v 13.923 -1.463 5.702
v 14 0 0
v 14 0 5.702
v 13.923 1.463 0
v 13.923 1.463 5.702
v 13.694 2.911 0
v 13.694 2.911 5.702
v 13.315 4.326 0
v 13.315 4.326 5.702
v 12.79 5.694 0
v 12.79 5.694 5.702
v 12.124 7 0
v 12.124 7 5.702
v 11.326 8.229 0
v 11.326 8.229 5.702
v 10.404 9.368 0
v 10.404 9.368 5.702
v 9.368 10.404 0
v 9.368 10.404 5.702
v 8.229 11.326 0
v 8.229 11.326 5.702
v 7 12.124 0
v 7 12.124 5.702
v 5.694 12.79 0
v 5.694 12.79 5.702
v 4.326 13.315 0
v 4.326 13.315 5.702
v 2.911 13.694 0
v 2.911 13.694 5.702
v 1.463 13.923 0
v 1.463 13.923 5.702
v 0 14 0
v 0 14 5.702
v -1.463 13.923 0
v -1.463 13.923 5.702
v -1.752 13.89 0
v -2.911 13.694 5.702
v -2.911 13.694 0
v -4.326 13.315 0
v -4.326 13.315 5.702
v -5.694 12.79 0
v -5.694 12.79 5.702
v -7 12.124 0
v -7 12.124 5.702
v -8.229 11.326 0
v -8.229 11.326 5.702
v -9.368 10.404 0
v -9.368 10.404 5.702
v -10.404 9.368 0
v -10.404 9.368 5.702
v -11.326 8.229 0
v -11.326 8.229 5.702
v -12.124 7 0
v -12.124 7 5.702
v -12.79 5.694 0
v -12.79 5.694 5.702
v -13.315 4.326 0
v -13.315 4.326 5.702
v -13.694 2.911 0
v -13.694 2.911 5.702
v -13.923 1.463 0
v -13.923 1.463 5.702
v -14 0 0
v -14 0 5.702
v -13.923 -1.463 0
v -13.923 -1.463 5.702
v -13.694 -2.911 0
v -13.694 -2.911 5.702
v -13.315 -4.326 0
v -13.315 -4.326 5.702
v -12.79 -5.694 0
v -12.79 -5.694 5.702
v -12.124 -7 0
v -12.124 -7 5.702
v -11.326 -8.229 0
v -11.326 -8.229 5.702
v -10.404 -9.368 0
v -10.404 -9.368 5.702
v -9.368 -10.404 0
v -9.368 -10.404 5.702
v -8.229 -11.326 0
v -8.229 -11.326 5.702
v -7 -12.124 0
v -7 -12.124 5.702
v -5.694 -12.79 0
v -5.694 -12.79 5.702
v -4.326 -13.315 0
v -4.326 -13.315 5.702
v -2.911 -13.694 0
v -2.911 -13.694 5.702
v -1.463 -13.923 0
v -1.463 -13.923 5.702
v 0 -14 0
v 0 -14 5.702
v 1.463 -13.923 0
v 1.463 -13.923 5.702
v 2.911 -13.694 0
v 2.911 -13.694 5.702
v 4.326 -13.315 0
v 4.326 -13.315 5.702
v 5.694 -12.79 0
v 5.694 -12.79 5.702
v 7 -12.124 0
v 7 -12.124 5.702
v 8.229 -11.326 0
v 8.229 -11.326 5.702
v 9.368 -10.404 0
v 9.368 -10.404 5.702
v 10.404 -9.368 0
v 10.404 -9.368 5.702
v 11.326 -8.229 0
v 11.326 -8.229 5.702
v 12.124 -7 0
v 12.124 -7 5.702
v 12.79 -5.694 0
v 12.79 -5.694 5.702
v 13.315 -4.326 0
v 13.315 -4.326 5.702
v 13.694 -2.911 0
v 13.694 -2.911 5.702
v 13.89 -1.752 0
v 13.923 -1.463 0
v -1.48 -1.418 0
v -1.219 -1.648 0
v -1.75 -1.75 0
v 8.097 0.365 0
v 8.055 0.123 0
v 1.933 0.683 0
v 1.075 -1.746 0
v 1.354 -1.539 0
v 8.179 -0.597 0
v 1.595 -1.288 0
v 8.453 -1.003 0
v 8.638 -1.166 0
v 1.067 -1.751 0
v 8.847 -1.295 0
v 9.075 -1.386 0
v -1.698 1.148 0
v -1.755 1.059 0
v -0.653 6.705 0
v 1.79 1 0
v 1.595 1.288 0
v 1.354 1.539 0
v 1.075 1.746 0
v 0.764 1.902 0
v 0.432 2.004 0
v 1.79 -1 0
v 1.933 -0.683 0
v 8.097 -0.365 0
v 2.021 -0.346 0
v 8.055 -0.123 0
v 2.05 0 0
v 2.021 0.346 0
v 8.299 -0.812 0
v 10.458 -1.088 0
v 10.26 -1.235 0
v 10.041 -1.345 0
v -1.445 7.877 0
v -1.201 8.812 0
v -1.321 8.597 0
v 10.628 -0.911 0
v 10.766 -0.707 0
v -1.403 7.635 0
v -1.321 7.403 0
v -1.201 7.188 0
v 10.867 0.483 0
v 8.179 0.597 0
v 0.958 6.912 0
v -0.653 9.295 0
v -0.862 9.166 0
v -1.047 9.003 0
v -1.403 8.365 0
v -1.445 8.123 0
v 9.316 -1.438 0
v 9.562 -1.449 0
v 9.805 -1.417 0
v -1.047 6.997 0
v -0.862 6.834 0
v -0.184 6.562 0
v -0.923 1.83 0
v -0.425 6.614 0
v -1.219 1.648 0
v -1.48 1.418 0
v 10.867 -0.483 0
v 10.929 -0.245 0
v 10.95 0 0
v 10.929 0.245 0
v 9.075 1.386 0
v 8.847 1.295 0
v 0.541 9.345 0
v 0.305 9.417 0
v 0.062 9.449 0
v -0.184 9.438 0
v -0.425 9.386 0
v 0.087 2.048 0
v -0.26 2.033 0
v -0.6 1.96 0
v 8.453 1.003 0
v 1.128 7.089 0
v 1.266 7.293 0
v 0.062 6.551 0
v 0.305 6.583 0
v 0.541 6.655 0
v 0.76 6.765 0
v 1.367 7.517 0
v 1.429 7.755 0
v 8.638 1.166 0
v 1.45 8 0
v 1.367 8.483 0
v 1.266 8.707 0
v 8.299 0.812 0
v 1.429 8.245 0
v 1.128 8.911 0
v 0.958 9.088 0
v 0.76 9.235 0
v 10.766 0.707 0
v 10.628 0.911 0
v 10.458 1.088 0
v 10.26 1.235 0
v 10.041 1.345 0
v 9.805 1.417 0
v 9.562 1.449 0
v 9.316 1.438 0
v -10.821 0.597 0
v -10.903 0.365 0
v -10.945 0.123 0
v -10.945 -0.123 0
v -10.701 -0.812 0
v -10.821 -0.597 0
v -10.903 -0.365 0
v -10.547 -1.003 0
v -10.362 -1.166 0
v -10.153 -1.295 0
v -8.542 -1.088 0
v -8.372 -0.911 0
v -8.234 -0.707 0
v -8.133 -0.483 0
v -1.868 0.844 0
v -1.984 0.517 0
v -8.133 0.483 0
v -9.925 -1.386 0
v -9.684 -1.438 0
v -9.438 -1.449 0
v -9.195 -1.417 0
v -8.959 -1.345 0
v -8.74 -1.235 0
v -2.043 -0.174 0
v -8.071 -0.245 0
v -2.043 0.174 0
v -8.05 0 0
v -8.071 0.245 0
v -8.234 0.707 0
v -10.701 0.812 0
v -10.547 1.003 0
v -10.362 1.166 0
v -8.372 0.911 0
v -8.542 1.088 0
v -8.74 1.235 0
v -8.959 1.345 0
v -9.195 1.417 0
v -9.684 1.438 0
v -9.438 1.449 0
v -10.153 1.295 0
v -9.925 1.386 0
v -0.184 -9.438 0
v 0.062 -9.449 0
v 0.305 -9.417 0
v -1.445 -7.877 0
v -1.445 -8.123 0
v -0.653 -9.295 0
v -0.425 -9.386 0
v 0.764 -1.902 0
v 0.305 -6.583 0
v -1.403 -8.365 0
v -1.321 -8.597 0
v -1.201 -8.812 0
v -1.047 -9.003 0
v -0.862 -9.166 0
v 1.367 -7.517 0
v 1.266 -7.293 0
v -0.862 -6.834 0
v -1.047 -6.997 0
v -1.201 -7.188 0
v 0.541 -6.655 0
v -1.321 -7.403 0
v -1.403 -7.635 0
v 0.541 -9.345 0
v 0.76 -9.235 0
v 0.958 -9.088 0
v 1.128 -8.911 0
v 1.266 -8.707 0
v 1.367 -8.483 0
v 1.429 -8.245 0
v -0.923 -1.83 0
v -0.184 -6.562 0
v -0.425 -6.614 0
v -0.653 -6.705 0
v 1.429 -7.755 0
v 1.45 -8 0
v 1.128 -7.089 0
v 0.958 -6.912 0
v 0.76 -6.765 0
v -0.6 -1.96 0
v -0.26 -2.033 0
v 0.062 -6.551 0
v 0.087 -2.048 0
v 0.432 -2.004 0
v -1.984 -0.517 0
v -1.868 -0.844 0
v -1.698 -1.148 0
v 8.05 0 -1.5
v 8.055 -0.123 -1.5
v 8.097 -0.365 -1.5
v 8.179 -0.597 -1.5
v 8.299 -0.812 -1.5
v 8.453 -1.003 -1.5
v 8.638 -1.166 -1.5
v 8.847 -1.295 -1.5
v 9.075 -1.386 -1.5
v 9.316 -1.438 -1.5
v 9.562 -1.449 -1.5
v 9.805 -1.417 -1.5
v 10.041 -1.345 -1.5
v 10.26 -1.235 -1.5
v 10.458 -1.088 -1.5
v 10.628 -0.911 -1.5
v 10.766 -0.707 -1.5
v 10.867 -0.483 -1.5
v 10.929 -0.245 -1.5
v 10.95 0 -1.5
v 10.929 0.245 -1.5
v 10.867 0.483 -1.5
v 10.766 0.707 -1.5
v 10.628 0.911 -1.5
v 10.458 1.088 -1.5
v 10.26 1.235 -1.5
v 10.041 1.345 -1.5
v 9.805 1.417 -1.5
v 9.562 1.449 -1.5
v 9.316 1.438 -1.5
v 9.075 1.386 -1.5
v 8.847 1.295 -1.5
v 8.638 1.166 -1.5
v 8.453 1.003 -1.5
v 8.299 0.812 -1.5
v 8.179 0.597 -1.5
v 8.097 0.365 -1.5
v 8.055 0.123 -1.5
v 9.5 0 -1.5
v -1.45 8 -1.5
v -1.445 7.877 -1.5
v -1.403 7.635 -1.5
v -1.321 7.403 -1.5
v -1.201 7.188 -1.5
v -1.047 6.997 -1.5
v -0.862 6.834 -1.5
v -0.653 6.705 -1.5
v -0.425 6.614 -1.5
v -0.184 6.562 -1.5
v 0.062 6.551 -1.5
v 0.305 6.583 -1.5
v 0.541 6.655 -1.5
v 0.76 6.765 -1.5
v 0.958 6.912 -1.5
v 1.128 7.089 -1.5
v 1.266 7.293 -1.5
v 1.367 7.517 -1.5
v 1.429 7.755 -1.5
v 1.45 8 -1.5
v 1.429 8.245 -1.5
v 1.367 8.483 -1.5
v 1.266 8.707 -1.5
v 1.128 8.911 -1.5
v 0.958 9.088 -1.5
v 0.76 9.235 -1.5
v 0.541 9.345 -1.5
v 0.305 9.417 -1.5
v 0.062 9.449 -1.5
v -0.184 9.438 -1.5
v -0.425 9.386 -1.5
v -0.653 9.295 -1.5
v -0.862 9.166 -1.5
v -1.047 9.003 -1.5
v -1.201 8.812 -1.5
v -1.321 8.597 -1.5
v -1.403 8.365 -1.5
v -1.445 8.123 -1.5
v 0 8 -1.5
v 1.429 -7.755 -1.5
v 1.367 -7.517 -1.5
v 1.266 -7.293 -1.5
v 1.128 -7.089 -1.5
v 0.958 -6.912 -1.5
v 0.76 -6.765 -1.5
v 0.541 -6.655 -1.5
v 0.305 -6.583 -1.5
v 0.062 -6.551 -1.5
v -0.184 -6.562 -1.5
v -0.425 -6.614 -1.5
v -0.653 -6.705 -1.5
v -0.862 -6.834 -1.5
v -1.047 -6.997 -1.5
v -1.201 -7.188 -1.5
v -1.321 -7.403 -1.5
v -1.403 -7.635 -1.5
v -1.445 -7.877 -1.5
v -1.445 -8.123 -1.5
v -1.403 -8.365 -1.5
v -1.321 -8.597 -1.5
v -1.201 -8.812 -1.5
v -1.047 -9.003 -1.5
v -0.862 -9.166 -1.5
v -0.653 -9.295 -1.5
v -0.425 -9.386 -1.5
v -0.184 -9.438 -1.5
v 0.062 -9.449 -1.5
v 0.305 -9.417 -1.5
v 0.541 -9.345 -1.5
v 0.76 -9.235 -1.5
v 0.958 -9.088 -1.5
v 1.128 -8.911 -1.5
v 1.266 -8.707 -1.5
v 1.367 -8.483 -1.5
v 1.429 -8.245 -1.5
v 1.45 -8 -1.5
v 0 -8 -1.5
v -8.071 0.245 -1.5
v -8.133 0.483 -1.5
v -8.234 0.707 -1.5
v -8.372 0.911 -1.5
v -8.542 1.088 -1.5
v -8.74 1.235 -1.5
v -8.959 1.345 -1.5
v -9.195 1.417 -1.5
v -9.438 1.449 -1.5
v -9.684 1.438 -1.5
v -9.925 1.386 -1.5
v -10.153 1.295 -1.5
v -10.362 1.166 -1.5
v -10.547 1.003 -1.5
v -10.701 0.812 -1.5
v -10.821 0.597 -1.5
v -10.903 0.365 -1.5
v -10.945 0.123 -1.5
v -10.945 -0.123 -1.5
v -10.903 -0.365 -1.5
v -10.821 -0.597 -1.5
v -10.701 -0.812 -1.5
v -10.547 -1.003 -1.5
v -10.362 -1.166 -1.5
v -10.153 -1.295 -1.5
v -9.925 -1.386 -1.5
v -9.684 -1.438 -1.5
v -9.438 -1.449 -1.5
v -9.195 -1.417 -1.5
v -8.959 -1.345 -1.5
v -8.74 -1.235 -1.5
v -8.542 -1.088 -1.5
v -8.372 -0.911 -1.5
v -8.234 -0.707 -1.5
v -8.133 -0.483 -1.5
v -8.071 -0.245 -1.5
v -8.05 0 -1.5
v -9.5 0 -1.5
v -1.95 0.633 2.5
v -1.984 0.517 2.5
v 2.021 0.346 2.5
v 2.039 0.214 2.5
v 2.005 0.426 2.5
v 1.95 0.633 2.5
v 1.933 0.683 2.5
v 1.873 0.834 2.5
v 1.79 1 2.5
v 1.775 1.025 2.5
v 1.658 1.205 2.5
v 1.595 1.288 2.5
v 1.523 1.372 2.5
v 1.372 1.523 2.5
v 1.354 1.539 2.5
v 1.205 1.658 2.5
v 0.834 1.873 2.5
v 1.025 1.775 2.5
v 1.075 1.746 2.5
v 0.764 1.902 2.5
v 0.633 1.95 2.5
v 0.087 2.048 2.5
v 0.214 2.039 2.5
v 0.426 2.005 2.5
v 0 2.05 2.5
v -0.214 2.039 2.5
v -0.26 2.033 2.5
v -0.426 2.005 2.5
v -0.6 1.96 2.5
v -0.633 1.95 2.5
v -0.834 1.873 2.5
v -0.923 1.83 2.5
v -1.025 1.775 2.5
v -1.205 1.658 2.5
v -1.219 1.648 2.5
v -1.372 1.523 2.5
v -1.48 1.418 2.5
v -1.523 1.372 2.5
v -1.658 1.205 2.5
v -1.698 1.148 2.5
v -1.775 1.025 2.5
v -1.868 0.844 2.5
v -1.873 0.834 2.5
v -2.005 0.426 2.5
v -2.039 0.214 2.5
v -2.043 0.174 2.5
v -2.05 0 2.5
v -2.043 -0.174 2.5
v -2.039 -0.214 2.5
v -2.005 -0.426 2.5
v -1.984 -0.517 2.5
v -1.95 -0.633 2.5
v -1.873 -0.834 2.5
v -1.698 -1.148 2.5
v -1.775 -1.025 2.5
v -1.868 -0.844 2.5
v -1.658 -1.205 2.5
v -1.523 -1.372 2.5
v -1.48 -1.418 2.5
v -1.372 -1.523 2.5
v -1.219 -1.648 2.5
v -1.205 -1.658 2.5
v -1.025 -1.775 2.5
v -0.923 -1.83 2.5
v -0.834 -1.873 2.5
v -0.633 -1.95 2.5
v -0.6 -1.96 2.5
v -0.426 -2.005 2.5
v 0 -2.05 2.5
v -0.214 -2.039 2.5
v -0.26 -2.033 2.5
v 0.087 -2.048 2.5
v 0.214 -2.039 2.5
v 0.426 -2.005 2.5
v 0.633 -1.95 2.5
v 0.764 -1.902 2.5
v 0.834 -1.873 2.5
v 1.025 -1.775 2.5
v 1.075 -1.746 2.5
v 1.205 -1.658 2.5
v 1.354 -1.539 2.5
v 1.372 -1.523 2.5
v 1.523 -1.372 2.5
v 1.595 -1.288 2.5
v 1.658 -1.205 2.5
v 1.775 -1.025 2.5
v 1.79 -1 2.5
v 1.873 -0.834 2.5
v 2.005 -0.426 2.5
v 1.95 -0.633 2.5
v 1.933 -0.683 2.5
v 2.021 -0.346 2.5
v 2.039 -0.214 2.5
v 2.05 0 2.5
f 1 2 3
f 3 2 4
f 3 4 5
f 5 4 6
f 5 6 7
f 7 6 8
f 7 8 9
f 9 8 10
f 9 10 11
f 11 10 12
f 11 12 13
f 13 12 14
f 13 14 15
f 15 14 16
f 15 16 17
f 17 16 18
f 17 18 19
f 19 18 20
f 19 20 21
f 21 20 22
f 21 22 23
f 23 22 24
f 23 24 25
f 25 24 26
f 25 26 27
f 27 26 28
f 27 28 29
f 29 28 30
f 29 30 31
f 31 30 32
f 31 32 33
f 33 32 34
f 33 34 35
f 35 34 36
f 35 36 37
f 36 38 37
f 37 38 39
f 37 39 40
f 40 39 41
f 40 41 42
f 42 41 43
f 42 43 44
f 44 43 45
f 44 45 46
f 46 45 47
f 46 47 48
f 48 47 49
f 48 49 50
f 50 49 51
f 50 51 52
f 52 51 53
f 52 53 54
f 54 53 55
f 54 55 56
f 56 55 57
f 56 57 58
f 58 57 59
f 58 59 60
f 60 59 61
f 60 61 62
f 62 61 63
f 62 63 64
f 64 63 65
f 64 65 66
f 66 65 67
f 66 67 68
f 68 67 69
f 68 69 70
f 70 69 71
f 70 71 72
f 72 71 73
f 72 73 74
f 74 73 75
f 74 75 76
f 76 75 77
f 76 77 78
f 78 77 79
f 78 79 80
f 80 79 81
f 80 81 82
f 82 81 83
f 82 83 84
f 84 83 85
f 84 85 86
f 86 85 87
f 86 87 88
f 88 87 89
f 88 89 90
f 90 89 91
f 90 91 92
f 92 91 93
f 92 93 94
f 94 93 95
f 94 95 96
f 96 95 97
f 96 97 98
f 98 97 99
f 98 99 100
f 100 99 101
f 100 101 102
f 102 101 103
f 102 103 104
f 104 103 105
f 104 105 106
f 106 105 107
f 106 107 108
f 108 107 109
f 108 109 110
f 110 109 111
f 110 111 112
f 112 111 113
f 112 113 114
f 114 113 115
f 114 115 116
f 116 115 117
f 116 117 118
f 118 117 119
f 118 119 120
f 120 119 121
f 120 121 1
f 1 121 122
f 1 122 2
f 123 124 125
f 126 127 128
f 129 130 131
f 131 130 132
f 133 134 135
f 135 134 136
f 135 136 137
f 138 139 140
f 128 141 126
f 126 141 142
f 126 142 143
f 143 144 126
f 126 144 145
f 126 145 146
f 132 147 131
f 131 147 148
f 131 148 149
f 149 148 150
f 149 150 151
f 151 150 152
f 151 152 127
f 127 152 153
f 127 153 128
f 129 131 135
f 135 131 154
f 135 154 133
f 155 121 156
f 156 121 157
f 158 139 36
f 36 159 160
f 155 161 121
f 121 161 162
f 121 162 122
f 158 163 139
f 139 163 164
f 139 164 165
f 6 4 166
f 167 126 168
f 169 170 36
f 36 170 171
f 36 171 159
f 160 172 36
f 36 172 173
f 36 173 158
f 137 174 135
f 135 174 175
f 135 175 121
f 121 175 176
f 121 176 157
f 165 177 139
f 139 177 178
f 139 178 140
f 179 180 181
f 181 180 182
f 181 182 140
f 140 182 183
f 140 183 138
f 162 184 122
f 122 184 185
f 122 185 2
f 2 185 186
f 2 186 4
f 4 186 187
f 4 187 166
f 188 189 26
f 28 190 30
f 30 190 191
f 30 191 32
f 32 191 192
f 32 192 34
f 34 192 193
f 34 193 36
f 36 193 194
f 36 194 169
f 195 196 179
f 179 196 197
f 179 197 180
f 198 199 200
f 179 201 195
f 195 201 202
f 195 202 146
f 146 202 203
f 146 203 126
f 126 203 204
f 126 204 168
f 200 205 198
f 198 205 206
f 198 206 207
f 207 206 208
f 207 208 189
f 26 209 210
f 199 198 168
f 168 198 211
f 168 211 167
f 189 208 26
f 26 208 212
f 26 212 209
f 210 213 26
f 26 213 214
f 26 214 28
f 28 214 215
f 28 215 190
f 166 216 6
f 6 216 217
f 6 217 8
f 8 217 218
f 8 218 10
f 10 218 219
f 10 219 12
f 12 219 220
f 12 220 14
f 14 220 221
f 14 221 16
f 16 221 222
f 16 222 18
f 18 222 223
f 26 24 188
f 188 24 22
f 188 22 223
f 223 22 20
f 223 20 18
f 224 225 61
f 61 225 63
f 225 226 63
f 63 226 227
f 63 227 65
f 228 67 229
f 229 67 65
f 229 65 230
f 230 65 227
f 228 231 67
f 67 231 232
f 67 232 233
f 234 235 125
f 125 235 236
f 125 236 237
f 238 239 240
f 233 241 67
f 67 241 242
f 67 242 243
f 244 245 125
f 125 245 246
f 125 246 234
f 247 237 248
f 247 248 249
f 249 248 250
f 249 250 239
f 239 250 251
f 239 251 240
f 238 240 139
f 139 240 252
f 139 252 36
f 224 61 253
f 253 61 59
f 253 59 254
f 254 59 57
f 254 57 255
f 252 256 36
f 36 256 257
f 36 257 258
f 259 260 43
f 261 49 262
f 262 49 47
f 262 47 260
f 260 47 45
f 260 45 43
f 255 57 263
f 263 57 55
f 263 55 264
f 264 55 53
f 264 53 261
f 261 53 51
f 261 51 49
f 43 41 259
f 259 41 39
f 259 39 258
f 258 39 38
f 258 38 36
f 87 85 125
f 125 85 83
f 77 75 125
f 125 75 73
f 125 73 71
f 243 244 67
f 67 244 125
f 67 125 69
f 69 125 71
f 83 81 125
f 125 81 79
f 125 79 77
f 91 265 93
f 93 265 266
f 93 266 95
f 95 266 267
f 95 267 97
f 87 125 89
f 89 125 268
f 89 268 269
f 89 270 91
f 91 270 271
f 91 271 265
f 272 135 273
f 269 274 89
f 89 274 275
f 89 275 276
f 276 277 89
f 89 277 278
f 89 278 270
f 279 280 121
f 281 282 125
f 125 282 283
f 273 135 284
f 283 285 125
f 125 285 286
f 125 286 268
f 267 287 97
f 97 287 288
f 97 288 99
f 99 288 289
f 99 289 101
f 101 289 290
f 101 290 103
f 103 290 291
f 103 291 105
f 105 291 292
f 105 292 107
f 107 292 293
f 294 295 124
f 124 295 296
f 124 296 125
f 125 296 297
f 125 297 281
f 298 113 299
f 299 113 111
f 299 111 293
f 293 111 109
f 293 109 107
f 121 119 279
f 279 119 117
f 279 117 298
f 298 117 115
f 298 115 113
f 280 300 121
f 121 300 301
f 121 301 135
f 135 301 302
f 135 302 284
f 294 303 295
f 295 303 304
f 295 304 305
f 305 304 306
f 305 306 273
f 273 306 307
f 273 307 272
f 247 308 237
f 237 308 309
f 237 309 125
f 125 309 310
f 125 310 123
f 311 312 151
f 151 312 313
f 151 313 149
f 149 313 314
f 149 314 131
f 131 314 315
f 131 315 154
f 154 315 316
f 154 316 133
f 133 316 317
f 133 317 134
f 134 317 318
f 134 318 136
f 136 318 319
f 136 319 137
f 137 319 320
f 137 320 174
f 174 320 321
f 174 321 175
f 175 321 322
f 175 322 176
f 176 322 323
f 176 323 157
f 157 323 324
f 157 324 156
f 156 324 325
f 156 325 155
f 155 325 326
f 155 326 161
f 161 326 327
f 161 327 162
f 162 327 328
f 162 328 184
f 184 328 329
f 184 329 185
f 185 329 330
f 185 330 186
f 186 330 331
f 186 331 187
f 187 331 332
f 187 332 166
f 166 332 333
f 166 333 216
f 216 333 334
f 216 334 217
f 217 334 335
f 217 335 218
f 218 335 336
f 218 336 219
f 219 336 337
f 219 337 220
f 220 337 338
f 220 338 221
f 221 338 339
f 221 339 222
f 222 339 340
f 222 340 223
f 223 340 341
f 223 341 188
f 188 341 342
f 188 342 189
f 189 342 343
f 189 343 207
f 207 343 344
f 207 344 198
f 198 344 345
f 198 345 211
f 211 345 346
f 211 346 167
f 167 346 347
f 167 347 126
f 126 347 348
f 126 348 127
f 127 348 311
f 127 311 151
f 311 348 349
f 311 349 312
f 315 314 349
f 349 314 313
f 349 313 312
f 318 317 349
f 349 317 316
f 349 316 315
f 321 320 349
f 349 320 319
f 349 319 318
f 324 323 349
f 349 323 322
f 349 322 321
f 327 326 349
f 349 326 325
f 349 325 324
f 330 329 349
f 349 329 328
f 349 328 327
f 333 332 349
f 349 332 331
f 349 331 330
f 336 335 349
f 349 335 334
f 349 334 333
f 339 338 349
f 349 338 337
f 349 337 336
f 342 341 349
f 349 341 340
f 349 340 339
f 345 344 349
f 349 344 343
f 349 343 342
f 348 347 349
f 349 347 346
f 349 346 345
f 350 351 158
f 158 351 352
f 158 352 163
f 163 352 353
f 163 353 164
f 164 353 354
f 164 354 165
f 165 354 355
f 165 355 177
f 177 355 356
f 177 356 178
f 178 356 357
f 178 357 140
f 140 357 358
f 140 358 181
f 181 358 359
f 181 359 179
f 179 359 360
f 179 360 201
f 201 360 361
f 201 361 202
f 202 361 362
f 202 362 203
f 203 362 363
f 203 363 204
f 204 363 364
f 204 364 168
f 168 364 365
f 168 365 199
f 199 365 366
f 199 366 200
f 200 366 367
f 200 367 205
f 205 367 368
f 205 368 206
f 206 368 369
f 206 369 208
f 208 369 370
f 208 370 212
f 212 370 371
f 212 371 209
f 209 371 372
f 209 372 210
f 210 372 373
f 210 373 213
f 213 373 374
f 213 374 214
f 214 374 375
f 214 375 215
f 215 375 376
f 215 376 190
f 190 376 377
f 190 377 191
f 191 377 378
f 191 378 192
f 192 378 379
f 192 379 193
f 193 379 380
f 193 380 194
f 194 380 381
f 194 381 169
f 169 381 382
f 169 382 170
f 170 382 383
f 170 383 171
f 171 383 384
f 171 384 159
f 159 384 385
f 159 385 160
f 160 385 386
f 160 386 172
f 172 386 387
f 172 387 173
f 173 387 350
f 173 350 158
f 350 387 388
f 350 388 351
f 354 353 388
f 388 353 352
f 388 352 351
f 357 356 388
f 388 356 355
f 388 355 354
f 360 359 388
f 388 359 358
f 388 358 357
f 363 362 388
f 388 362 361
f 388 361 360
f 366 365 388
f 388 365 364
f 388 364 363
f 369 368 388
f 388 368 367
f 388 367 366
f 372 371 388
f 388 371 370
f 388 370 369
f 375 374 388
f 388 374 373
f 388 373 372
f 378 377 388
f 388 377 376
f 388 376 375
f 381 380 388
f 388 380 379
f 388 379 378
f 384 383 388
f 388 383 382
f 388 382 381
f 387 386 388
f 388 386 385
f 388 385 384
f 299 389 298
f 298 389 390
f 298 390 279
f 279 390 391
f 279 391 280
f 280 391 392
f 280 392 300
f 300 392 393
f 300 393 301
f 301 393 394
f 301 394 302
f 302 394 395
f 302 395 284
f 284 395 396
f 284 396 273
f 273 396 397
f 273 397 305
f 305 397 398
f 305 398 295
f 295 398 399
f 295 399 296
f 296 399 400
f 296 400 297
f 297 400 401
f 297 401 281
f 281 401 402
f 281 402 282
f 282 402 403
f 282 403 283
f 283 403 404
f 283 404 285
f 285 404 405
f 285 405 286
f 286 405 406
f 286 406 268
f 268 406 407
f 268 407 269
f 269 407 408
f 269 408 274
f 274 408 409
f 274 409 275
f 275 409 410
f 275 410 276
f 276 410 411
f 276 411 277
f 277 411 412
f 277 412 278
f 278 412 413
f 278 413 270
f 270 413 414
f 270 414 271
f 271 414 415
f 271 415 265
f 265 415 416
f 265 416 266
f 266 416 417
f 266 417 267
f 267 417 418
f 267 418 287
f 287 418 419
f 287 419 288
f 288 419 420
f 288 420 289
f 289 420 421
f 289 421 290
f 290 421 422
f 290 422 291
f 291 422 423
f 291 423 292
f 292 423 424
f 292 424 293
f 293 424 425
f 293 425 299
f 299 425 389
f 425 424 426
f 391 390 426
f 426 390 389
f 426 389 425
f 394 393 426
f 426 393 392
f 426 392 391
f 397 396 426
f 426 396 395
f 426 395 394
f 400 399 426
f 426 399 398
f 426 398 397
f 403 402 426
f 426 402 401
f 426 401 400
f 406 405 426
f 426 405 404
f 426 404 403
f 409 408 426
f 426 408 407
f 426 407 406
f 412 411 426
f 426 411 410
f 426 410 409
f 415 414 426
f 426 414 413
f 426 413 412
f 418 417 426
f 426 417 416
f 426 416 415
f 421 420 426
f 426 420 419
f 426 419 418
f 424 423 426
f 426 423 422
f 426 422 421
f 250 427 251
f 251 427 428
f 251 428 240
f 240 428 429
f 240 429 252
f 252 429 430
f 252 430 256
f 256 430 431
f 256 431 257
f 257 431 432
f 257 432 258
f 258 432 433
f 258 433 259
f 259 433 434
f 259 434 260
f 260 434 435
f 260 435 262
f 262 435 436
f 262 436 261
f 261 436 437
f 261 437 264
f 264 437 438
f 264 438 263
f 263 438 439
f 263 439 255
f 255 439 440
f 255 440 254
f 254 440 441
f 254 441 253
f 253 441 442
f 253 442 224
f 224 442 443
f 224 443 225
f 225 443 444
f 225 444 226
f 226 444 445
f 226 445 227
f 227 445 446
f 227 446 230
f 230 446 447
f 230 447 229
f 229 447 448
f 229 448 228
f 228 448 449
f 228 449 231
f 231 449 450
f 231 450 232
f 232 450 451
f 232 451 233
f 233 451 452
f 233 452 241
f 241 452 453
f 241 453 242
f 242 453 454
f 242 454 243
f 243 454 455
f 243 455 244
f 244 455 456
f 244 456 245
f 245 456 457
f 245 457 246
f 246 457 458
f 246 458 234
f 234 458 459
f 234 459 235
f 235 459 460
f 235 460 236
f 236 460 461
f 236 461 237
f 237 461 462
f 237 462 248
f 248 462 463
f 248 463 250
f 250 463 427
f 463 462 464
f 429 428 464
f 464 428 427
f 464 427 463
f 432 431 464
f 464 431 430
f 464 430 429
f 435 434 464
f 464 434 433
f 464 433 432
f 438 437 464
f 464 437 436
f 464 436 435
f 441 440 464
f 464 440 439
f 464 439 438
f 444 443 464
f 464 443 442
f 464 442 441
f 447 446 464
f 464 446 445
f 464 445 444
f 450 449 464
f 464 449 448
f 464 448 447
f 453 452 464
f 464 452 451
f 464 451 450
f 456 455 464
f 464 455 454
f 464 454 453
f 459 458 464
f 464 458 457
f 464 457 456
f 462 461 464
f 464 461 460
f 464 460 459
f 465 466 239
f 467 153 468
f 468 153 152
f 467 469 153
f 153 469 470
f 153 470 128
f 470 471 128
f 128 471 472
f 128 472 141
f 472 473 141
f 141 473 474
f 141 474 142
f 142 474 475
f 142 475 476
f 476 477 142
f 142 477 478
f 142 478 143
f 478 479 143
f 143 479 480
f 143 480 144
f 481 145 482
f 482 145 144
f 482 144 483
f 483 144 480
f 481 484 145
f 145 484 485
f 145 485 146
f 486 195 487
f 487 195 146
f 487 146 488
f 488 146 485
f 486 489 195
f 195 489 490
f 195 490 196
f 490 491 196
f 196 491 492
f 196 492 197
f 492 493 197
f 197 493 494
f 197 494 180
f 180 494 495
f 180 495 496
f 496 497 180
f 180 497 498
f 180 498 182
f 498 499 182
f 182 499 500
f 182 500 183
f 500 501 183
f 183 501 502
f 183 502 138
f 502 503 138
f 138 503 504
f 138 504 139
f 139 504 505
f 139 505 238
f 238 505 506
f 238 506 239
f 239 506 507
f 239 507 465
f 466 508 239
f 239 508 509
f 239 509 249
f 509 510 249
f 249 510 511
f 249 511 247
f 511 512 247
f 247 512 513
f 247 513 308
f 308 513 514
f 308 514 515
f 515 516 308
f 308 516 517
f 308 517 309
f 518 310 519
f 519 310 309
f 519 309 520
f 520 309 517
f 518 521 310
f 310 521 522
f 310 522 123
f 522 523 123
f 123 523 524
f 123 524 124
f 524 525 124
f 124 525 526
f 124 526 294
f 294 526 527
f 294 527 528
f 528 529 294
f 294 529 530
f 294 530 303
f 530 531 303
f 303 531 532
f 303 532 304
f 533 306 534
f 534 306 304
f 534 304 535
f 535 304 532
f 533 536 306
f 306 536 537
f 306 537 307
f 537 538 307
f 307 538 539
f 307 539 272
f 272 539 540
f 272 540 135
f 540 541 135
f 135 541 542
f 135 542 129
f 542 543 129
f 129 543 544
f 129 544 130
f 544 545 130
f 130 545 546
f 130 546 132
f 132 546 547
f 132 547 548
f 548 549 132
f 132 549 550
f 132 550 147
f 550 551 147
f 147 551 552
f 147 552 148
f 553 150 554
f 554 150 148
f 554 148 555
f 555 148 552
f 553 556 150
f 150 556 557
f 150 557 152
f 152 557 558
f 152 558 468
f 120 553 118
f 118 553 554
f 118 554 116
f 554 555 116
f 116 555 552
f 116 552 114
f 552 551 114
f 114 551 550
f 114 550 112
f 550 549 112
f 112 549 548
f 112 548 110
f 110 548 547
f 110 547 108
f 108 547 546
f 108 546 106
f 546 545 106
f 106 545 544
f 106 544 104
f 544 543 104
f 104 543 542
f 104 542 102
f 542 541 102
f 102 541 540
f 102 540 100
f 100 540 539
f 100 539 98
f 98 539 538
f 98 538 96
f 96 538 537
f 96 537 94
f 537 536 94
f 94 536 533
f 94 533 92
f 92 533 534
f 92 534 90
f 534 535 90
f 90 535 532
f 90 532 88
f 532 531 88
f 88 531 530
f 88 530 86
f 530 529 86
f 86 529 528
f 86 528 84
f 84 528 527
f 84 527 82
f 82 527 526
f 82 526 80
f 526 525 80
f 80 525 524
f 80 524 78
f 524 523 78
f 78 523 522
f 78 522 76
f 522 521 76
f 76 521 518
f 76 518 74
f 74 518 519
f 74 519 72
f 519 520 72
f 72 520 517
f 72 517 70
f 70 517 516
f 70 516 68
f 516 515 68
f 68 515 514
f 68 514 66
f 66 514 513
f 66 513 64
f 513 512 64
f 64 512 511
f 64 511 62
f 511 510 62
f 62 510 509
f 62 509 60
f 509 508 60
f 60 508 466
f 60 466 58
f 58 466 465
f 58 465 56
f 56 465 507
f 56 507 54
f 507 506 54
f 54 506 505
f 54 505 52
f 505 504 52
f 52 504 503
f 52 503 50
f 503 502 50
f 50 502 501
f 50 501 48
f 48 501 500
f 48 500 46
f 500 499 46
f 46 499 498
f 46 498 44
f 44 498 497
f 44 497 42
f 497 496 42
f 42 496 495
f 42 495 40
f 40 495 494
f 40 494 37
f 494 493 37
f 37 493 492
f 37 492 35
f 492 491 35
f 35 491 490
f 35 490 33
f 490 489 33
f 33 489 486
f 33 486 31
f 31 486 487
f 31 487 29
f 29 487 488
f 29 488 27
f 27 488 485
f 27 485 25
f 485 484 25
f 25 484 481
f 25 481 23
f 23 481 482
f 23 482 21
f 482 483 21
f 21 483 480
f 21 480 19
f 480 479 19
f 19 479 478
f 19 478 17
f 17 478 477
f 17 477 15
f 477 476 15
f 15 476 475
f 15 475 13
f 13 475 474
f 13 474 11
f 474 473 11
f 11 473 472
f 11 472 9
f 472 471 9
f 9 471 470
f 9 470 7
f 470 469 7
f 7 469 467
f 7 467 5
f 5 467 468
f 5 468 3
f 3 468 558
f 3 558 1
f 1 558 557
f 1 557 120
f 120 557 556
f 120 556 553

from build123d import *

# Parameters (mm, degrees)
SKETCH_1_R          = 14
EXTRUDE_1_DEPTH     = 2.5
SKETCH_2_R          = 1.45
EXTRUDE_2_DEPTH     = 1.5
SKETCH_3_R          = 2.05
CUT_EXTRUDE_1_DEPTH = 21.199009877


with BuildPart() as part:
    # 草图1 → 凸台-拉伸1 (new body)
    with BuildSketch(Plane.XY):
        Circle(SKETCH_1_R)
    extrude(amount=EXTRUDE_1_DEPTH)

    # 草图2 → 凸台-拉伸2 (add)
    with BuildSketch(Plane(origin=(0, 0, 0), x_dir=(-1, 0, 0), z_dir=(0, 0, -1))):
        with Locations(Location((-9.5, 0, 0), (0, 0, 180))):
            Circle(SKETCH_2_R)
        with Locations(Location((0, 8, 0), (0, 0, 180))):
            Circle(SKETCH_2_R)
        with Locations(Location((0, -8, 0), (0, 0, 180))):
            Circle(SKETCH_2_R)
        with Locations(Location((9.5, 0, 0), (0, 0, 180))):
            Circle(SKETCH_2_R)
    extrude(amount=EXTRUDE_2_DEPTH)

    # 草图3 → 切除-拉伸1 (cut, through all)
    with BuildSketch(Plane.XY.offset(2.5)):
        Circle(SKETCH_3_R)
    extrude(amount=-CUT_EXTRUDE_1_DEPTH, mode=Mode.SUBTRACT)

    # 草图4 → 旋转1 (revolve)
    with BuildSketch(Plane(origin=(0, 0, 0), x_dir=(0, 0, -1), z_dir=(1, 0, 0)), mode=Mode.PRIVATE) as revolve_1_sk:
        Polygon((-2.5, 2.05), (-5.70199285, 14), (-2.5, 14), align=None)
    revolve(revolve_1_sk.sketch.rotate(Axis((0, 0, 14.60459965), (0, 0, -1)), 90), axis=Axis((0, 0, 14.60459965), (0, 0, -1)))


solid = part.part
